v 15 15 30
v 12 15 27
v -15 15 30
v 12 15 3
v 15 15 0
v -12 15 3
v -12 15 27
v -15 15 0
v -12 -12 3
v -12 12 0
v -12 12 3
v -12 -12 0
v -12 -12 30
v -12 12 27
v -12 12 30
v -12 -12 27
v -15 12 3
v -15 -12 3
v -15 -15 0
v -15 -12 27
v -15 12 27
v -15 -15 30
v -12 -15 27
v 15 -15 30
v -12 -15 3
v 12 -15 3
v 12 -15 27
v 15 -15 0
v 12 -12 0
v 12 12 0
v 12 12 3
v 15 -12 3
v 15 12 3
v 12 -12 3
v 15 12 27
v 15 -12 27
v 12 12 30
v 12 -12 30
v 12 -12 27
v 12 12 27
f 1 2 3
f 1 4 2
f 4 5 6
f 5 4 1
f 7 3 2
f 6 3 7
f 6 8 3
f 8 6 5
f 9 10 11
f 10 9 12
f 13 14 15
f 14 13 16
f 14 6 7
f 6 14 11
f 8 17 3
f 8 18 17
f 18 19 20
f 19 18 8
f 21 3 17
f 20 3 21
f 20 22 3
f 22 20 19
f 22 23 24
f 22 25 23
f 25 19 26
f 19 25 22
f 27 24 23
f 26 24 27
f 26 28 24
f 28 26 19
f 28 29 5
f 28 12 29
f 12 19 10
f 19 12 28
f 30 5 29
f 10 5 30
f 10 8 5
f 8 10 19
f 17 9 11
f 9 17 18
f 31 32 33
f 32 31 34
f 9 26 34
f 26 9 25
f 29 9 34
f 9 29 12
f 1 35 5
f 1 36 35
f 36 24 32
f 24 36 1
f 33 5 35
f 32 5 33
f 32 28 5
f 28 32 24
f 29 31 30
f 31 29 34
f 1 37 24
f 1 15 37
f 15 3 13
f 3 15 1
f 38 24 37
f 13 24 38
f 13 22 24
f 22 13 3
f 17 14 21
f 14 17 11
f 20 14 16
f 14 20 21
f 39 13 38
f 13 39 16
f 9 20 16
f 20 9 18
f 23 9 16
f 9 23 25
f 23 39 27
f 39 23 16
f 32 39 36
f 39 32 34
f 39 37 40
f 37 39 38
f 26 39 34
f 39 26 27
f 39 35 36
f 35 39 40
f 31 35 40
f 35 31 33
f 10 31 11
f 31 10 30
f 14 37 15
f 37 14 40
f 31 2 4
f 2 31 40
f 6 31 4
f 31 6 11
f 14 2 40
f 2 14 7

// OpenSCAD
// file: polyhedra.scad
// shape height
//sh = 30;
// border width
//bw = 3;

//poly_wire(octahedron);

function sum0(v, i, r) = i < len(v) ? sum0(v, i + 1, r + v[i]) : r;
function sum(v) = sum0(v, 1, v[0]);
function avg(v) = sum(v) / len(v);

function face_center(poly, fid = 0) =
    let(vs = poly[0])
    let(f = poly[1][fid])
    avg([for (p = f) vs[p]]);
    
function face_dist(poly, fid = 0) =
    norm(face_center(poly, fid));        
    
module face_rotate(poly, fid = 0) {
    c = face_center(poly, fid);
    az = c.x == 0 ? 90 : -atan(c.y / c.x);
    rz = [
        [cos(az), -sin(az), 0],
        [sin(az), cos(az), 0],
        [0, 0, 1],
    ] * c;
    ay = atan(rz.x / rz.z);
    rotate([0, ay, 0]) rotate([0, 0, az])
        children();
}

module poly_fill0(poly, bw = bw, fid = 0) {
    scale(bw / 2 / face_dist(poly, fid)) 
        polyhedron(poly[0], poly[1]);    
}

module poly_wire0(poly, sh = sh, bw = bw, fid = 0) {
    s = (sh - bw) / 2 / face_dist(poly, fid);
    vs = poly[0];
    for (f = poly[1]) {
        n = len(f);
        for (i = [0:n - 1]) {
            j = (i + 1) % n;
            p = f[i];
            q = f[j];
            if (p < q) {
                hull() {
                    translate(vs[p] * s) poly_fill0(poly, bw, fid);
                    translate(vs[q] * s) poly_fill0(poly, bw, fid);
                }                
            }
        }
    }        
}

module poly_wire(poly, sh = sh, bw = bw, fid = 0) {
    translate([0, 0, sh / 2])
        face_rotate(poly, fid)
            poly_wire0(poly, sh, bw, fid);
}

// --------------------- Platonic Solids ---------------------

phi = (sqrt(5) + 1) / 2;

tetrahedron = [[
    [-1, 0, -1/sqrt(2)], // 0
    [1, 0, -1/sqrt(2)], // 1
    [0, -1, 1/sqrt(2)], // 2
    [0, 1, 1/sqrt(2)] // 3
], [
    [0, 1, 3],
    [0, 2, 1],
    [0, 3, 2],
    [1, 2, 3]
]];

cube = [[
    [1, 1, -1], // 0
    [-1, 1, -1], // 1
    [-1, -1, -1], // 2
    [1, -1, -1], // 3
    [1, 1, 1], // 4
    [-1, 1, 1], // 5
    [-1, -1, 1], // 6
    [1, -1, 1], // 7
], [
    [0, 1, 2, 3],
    [0, 4, 5, 1],
    [1, 5, 6, 2],
    [2, 6, 7, 3],
    [3, 7, 4, 0],
    [4, 7, 6, 5]
]];

octahedron = [[
    [0, 0, -1], // 0
    [1, 0, 0], // 1
    [0, 1, 0], // 2
    [-1, 0, 0], // 3
    [0, -1, 0], // 4
    [0, 0, 1] // 5
], [
    [0, 1, 2],
    [0, 2, 3],
    [0, 3, 4],
    [0, 4, 1],
    [5, 2, 1],
    [5, 3, 2],
    [5, 4, 3],
    [5, 1, 4]
]];

dodecahedron = [[
    [-1/phi, 0, -phi], // 0
    [1/phi, 0, -phi], // 1
    [-1, -1, -1], // 2
    [-1, 1, -1], // 3
    [1, -1, -1], // 4
    [1, 1, -1], // 5
    [0, -phi, -1/phi], // 6
    [0, phi, -1/phi], // 7
    [-phi, -1/phi, 0], // 8
    [-phi, 1/phi, 0], // 9
    [phi, -1/phi, 0], // 10
    [phi, 1/phi, 0], // 11
    [0, -phi, 1/phi], // 12
    [0, phi, 1/phi], // 13
    [-1, -1, 1], // 14
    [-1, 1, 1], // 15
    [1, -1, 1], // 16
    [1, 1, 1], // 17
    [-1/phi, 0, phi], // 18
    [1/phi, 0, phi] // 19    
], [
    [0, 1, 5, 7, 3],
    [1, 0, 2, 6, 4],
    [0, 3, 9, 8, 2],
    [1, 4, 10, 11, 5],
    [8, 14, 12, 6, 2],
    [6, 12, 16, 10, 4],
    [7, 13, 15, 9, 3],
    [13, 7, 5, 11, 17],
    [8, 9, 15, 18, 14],
    [11, 10, 16, 19, 17],
    [18, 19, 16, 12, 14],
    [19, 18, 15, 13, 17]
]];

icosahedron = [[
    [0, -1, -phi], // 0
    [0, 1, -phi], // 1
    [-phi, 0, -1], // 2
    [phi, 0, -1], // 3
    [-1, -phi, 0], // 4
    [-1, phi, 0], // 5
    [1, -phi, 0], // 6
    [1, phi, 0], // 7
    [-phi, 0, 1], // 8
    [phi, 0, 1], // 9
    [0, -1, phi], // 10
    [0, 1, phi] // 11    
], [
    [0, 1, 2],
    [1, 0, 3],
    [0, 2, 4],
    [2, 1, 5],
    [1, 3, 7],
    [3, 0, 6],
    [1, 7, 5],
    [0, 4, 6],
    [2, 8, 4],
    [2, 5, 8],
    [3, 6, 9],
    [3, 9, 7],
    [4, 10, 6],
    [5, 7, 11],
    [8, 10, 4],
    [5, 11, 8],
    [9, 11, 7],
    [6, 10, 9],
    [8, 11, 10],
    [9, 10, 11]
]];
// main file
// shape height
sh = 30;
// border width
bw = 3;

include <polyhedra.scad>;

poly_wire(cube);
